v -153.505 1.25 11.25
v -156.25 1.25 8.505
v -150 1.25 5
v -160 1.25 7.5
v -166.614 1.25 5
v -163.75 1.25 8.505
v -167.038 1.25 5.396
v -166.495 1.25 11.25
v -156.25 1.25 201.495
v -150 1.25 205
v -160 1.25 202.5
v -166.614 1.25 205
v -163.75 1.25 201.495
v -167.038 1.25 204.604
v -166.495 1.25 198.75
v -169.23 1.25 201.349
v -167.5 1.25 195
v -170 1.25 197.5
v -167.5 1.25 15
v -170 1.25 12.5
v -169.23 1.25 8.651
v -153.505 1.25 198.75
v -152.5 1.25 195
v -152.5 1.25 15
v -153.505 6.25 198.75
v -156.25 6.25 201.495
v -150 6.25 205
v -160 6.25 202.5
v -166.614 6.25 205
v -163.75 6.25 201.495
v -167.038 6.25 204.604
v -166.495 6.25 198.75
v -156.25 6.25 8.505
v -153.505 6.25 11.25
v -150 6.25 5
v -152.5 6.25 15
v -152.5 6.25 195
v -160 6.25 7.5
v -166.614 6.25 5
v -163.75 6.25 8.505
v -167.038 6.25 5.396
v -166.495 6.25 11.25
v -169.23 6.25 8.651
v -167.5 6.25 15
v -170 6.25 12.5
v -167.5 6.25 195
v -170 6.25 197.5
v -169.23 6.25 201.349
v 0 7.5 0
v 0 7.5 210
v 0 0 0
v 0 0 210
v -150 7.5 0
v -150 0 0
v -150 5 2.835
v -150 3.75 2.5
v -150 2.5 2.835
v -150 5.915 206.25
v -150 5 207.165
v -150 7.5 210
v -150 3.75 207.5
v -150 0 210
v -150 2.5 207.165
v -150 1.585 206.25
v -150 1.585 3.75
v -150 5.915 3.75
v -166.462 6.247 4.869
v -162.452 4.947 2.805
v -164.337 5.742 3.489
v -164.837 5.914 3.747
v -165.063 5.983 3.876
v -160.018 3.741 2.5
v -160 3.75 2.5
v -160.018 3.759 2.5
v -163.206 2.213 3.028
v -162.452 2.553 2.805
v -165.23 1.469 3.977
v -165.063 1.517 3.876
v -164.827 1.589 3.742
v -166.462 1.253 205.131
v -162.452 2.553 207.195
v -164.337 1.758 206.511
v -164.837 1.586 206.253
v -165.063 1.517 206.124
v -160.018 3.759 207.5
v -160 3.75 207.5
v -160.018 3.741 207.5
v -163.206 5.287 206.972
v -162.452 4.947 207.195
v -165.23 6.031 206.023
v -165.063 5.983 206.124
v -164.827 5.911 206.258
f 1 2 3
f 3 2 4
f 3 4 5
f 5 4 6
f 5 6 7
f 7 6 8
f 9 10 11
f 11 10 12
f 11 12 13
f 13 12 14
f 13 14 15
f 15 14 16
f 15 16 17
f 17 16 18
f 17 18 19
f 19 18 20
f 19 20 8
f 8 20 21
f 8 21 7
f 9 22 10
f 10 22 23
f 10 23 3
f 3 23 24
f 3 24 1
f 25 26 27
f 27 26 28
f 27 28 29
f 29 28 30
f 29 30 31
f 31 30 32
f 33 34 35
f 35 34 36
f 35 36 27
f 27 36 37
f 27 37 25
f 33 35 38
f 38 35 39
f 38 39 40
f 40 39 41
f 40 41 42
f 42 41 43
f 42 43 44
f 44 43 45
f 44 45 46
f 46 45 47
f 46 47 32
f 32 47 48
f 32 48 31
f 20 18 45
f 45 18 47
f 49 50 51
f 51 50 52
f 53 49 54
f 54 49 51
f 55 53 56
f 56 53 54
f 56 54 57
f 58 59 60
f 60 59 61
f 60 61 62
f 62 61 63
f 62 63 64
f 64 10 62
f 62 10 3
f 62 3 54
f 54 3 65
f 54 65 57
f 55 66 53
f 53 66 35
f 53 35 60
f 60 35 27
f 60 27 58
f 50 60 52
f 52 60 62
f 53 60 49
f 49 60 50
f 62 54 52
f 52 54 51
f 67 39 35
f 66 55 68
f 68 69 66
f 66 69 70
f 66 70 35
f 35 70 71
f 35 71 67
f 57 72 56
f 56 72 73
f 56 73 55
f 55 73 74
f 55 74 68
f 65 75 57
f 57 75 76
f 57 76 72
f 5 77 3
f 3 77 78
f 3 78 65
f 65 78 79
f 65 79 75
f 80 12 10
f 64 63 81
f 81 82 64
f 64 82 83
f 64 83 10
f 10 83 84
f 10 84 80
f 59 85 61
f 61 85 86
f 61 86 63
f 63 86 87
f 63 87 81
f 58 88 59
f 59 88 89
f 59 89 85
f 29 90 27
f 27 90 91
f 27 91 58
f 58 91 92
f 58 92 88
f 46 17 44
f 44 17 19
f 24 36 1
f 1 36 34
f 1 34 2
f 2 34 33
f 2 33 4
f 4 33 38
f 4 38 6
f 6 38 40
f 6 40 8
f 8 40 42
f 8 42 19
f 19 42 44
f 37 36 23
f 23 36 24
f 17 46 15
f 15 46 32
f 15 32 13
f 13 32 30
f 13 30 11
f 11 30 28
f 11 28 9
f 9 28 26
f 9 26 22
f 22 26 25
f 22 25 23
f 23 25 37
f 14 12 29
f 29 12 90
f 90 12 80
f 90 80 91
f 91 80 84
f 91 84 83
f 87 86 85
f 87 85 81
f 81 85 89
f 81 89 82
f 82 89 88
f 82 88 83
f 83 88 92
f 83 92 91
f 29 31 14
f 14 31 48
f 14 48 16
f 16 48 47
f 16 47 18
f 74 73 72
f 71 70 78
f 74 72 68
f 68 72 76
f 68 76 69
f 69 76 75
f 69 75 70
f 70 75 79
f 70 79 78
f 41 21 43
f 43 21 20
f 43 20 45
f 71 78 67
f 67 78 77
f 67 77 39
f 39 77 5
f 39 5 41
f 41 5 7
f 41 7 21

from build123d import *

# Parameters (mm, degrees)
BOSS_EXTRUDE1_DEPTH = 7.5
SKETCH2_R           = 2.5
BOSS_EXTRUDE2_DEPTH = 20
SKETCH3_R           = 7.5
CUT_EXTRUDE1_DEPTH  = 271.257400454
CUT_EXTRUDE2_DEPTH  = 20


with BuildPart() as part:
    # Sketch1 → Boss-Extrude1 (new body)
    with BuildSketch(Plane(origin=(0, 0, 0), x_dir=(1, 0, 0), z_dir=(0, 1, 0))):
        Polygon((0, 0), (-150, 0), (-150, -55), (-150, -155), (-150, -210), (0, -210), align=None)
    extrude(amount=BOSS_EXTRUDE1_DEPTH)

    # Sketch2 → Boss-Extrude2 (add)
    with BuildSketch(Plane.ZY.offset(150)):
        with BuildLine():
            Line((205, 6.25), (5, 6.25))
            ThreePointArc((5, 6.25), (6.767766953, 5.517766953), (7.5, 3.75))
            ThreePointArc((7.5, 3.75), (6.767766953, 1.982233047), (5, 1.25))
            Line((5, 1.25), (205, 1.25))
            ThreePointArc((205, 1.25), (202.5, 3.75), (205, 6.25))
        make_face()
        with Locations((205, 3.75)):
            Circle(SKETCH2_R)
        with Locations((5, 3.75)):
            Circle(SKETCH2_R)
    extrude(amount=BOSS_EXTRUDE2_DEPTH)

    # Sketch3 → Cut-Extrude1 (cut, through all)
    with BuildSketch(Plane(origin=(0, 6.25, 0), x_dir=(1, 0, 0), z_dir=(0, 1, 0))):
        with BuildLine():
            ThreePointArc((-152.5, -15), (-160, -22.5), (-167.5, -15))
            Line((-167.5, -15), (-167.5, -195))
            ThreePointArc((-167.5, -195), (-160, -187.5), (-152.5, -195))
            Line((-152.5, -195), (-152.5, -15))
        make_face()
        with Locations((-160, -15)):
            Circle(SKETCH3_R)
        with Locations((-160, -195)):
            Circle(SKETCH3_R)
    extrude(amount=-CUT_EXTRUDE1_DEPTH, mode=Mode.SUBTRACT)

    # Sketch4 → Cut-Extrude2 (cut)
    with BuildSketch(Plane(origin=(0, 6.25, 0), x_dir=(1, 0, 0), z_dir=(0, 1, 0))):
        with BuildLine():
            ThreePointArc((-166.614378278, -5), (-163.535533906, -3.145856533), (-160, -2.5))
            Line((-160, -2.5), (-170, -2.5))
            Line((-170, -2.5), (-170, -5))
            Line((-170, -5), (-166.614378278, -5))
        make_face()
        with BuildLine():
            ThreePointArc((-170, -12.5), (-169.114378278, -8.385621722), (-166.614378278, -5))
            Line((-166.614378278, -5), (-170, -5))
            Line((-170, -5), (-170, -12.5))
        make_face()
        with BuildLine():
            ThreePointArc((-160, -207.5), (-163.535533906, -206.854143467), (-166.614378278, -205))
            Line((-166.614378278, -205), (-170, -205))
            Line((-170, -205), (-170, -207.5))
            Line((-170, -207.5), (-160, -207.5))
        make_face()
        with BuildLine():
            Line((-170, -205), (-166.614378278, -205))
            ThreePointArc((-166.614378278, -205), (-169.114378278, -201.614378278), (-170, -197.5))
            Line((-170, -197.5), (-170, -205))
        make_face()
    extrude(amount=-CUT_EXTRUDE2_DEPTH, mode=Mode.SUBTRACT)


solid = part.part
